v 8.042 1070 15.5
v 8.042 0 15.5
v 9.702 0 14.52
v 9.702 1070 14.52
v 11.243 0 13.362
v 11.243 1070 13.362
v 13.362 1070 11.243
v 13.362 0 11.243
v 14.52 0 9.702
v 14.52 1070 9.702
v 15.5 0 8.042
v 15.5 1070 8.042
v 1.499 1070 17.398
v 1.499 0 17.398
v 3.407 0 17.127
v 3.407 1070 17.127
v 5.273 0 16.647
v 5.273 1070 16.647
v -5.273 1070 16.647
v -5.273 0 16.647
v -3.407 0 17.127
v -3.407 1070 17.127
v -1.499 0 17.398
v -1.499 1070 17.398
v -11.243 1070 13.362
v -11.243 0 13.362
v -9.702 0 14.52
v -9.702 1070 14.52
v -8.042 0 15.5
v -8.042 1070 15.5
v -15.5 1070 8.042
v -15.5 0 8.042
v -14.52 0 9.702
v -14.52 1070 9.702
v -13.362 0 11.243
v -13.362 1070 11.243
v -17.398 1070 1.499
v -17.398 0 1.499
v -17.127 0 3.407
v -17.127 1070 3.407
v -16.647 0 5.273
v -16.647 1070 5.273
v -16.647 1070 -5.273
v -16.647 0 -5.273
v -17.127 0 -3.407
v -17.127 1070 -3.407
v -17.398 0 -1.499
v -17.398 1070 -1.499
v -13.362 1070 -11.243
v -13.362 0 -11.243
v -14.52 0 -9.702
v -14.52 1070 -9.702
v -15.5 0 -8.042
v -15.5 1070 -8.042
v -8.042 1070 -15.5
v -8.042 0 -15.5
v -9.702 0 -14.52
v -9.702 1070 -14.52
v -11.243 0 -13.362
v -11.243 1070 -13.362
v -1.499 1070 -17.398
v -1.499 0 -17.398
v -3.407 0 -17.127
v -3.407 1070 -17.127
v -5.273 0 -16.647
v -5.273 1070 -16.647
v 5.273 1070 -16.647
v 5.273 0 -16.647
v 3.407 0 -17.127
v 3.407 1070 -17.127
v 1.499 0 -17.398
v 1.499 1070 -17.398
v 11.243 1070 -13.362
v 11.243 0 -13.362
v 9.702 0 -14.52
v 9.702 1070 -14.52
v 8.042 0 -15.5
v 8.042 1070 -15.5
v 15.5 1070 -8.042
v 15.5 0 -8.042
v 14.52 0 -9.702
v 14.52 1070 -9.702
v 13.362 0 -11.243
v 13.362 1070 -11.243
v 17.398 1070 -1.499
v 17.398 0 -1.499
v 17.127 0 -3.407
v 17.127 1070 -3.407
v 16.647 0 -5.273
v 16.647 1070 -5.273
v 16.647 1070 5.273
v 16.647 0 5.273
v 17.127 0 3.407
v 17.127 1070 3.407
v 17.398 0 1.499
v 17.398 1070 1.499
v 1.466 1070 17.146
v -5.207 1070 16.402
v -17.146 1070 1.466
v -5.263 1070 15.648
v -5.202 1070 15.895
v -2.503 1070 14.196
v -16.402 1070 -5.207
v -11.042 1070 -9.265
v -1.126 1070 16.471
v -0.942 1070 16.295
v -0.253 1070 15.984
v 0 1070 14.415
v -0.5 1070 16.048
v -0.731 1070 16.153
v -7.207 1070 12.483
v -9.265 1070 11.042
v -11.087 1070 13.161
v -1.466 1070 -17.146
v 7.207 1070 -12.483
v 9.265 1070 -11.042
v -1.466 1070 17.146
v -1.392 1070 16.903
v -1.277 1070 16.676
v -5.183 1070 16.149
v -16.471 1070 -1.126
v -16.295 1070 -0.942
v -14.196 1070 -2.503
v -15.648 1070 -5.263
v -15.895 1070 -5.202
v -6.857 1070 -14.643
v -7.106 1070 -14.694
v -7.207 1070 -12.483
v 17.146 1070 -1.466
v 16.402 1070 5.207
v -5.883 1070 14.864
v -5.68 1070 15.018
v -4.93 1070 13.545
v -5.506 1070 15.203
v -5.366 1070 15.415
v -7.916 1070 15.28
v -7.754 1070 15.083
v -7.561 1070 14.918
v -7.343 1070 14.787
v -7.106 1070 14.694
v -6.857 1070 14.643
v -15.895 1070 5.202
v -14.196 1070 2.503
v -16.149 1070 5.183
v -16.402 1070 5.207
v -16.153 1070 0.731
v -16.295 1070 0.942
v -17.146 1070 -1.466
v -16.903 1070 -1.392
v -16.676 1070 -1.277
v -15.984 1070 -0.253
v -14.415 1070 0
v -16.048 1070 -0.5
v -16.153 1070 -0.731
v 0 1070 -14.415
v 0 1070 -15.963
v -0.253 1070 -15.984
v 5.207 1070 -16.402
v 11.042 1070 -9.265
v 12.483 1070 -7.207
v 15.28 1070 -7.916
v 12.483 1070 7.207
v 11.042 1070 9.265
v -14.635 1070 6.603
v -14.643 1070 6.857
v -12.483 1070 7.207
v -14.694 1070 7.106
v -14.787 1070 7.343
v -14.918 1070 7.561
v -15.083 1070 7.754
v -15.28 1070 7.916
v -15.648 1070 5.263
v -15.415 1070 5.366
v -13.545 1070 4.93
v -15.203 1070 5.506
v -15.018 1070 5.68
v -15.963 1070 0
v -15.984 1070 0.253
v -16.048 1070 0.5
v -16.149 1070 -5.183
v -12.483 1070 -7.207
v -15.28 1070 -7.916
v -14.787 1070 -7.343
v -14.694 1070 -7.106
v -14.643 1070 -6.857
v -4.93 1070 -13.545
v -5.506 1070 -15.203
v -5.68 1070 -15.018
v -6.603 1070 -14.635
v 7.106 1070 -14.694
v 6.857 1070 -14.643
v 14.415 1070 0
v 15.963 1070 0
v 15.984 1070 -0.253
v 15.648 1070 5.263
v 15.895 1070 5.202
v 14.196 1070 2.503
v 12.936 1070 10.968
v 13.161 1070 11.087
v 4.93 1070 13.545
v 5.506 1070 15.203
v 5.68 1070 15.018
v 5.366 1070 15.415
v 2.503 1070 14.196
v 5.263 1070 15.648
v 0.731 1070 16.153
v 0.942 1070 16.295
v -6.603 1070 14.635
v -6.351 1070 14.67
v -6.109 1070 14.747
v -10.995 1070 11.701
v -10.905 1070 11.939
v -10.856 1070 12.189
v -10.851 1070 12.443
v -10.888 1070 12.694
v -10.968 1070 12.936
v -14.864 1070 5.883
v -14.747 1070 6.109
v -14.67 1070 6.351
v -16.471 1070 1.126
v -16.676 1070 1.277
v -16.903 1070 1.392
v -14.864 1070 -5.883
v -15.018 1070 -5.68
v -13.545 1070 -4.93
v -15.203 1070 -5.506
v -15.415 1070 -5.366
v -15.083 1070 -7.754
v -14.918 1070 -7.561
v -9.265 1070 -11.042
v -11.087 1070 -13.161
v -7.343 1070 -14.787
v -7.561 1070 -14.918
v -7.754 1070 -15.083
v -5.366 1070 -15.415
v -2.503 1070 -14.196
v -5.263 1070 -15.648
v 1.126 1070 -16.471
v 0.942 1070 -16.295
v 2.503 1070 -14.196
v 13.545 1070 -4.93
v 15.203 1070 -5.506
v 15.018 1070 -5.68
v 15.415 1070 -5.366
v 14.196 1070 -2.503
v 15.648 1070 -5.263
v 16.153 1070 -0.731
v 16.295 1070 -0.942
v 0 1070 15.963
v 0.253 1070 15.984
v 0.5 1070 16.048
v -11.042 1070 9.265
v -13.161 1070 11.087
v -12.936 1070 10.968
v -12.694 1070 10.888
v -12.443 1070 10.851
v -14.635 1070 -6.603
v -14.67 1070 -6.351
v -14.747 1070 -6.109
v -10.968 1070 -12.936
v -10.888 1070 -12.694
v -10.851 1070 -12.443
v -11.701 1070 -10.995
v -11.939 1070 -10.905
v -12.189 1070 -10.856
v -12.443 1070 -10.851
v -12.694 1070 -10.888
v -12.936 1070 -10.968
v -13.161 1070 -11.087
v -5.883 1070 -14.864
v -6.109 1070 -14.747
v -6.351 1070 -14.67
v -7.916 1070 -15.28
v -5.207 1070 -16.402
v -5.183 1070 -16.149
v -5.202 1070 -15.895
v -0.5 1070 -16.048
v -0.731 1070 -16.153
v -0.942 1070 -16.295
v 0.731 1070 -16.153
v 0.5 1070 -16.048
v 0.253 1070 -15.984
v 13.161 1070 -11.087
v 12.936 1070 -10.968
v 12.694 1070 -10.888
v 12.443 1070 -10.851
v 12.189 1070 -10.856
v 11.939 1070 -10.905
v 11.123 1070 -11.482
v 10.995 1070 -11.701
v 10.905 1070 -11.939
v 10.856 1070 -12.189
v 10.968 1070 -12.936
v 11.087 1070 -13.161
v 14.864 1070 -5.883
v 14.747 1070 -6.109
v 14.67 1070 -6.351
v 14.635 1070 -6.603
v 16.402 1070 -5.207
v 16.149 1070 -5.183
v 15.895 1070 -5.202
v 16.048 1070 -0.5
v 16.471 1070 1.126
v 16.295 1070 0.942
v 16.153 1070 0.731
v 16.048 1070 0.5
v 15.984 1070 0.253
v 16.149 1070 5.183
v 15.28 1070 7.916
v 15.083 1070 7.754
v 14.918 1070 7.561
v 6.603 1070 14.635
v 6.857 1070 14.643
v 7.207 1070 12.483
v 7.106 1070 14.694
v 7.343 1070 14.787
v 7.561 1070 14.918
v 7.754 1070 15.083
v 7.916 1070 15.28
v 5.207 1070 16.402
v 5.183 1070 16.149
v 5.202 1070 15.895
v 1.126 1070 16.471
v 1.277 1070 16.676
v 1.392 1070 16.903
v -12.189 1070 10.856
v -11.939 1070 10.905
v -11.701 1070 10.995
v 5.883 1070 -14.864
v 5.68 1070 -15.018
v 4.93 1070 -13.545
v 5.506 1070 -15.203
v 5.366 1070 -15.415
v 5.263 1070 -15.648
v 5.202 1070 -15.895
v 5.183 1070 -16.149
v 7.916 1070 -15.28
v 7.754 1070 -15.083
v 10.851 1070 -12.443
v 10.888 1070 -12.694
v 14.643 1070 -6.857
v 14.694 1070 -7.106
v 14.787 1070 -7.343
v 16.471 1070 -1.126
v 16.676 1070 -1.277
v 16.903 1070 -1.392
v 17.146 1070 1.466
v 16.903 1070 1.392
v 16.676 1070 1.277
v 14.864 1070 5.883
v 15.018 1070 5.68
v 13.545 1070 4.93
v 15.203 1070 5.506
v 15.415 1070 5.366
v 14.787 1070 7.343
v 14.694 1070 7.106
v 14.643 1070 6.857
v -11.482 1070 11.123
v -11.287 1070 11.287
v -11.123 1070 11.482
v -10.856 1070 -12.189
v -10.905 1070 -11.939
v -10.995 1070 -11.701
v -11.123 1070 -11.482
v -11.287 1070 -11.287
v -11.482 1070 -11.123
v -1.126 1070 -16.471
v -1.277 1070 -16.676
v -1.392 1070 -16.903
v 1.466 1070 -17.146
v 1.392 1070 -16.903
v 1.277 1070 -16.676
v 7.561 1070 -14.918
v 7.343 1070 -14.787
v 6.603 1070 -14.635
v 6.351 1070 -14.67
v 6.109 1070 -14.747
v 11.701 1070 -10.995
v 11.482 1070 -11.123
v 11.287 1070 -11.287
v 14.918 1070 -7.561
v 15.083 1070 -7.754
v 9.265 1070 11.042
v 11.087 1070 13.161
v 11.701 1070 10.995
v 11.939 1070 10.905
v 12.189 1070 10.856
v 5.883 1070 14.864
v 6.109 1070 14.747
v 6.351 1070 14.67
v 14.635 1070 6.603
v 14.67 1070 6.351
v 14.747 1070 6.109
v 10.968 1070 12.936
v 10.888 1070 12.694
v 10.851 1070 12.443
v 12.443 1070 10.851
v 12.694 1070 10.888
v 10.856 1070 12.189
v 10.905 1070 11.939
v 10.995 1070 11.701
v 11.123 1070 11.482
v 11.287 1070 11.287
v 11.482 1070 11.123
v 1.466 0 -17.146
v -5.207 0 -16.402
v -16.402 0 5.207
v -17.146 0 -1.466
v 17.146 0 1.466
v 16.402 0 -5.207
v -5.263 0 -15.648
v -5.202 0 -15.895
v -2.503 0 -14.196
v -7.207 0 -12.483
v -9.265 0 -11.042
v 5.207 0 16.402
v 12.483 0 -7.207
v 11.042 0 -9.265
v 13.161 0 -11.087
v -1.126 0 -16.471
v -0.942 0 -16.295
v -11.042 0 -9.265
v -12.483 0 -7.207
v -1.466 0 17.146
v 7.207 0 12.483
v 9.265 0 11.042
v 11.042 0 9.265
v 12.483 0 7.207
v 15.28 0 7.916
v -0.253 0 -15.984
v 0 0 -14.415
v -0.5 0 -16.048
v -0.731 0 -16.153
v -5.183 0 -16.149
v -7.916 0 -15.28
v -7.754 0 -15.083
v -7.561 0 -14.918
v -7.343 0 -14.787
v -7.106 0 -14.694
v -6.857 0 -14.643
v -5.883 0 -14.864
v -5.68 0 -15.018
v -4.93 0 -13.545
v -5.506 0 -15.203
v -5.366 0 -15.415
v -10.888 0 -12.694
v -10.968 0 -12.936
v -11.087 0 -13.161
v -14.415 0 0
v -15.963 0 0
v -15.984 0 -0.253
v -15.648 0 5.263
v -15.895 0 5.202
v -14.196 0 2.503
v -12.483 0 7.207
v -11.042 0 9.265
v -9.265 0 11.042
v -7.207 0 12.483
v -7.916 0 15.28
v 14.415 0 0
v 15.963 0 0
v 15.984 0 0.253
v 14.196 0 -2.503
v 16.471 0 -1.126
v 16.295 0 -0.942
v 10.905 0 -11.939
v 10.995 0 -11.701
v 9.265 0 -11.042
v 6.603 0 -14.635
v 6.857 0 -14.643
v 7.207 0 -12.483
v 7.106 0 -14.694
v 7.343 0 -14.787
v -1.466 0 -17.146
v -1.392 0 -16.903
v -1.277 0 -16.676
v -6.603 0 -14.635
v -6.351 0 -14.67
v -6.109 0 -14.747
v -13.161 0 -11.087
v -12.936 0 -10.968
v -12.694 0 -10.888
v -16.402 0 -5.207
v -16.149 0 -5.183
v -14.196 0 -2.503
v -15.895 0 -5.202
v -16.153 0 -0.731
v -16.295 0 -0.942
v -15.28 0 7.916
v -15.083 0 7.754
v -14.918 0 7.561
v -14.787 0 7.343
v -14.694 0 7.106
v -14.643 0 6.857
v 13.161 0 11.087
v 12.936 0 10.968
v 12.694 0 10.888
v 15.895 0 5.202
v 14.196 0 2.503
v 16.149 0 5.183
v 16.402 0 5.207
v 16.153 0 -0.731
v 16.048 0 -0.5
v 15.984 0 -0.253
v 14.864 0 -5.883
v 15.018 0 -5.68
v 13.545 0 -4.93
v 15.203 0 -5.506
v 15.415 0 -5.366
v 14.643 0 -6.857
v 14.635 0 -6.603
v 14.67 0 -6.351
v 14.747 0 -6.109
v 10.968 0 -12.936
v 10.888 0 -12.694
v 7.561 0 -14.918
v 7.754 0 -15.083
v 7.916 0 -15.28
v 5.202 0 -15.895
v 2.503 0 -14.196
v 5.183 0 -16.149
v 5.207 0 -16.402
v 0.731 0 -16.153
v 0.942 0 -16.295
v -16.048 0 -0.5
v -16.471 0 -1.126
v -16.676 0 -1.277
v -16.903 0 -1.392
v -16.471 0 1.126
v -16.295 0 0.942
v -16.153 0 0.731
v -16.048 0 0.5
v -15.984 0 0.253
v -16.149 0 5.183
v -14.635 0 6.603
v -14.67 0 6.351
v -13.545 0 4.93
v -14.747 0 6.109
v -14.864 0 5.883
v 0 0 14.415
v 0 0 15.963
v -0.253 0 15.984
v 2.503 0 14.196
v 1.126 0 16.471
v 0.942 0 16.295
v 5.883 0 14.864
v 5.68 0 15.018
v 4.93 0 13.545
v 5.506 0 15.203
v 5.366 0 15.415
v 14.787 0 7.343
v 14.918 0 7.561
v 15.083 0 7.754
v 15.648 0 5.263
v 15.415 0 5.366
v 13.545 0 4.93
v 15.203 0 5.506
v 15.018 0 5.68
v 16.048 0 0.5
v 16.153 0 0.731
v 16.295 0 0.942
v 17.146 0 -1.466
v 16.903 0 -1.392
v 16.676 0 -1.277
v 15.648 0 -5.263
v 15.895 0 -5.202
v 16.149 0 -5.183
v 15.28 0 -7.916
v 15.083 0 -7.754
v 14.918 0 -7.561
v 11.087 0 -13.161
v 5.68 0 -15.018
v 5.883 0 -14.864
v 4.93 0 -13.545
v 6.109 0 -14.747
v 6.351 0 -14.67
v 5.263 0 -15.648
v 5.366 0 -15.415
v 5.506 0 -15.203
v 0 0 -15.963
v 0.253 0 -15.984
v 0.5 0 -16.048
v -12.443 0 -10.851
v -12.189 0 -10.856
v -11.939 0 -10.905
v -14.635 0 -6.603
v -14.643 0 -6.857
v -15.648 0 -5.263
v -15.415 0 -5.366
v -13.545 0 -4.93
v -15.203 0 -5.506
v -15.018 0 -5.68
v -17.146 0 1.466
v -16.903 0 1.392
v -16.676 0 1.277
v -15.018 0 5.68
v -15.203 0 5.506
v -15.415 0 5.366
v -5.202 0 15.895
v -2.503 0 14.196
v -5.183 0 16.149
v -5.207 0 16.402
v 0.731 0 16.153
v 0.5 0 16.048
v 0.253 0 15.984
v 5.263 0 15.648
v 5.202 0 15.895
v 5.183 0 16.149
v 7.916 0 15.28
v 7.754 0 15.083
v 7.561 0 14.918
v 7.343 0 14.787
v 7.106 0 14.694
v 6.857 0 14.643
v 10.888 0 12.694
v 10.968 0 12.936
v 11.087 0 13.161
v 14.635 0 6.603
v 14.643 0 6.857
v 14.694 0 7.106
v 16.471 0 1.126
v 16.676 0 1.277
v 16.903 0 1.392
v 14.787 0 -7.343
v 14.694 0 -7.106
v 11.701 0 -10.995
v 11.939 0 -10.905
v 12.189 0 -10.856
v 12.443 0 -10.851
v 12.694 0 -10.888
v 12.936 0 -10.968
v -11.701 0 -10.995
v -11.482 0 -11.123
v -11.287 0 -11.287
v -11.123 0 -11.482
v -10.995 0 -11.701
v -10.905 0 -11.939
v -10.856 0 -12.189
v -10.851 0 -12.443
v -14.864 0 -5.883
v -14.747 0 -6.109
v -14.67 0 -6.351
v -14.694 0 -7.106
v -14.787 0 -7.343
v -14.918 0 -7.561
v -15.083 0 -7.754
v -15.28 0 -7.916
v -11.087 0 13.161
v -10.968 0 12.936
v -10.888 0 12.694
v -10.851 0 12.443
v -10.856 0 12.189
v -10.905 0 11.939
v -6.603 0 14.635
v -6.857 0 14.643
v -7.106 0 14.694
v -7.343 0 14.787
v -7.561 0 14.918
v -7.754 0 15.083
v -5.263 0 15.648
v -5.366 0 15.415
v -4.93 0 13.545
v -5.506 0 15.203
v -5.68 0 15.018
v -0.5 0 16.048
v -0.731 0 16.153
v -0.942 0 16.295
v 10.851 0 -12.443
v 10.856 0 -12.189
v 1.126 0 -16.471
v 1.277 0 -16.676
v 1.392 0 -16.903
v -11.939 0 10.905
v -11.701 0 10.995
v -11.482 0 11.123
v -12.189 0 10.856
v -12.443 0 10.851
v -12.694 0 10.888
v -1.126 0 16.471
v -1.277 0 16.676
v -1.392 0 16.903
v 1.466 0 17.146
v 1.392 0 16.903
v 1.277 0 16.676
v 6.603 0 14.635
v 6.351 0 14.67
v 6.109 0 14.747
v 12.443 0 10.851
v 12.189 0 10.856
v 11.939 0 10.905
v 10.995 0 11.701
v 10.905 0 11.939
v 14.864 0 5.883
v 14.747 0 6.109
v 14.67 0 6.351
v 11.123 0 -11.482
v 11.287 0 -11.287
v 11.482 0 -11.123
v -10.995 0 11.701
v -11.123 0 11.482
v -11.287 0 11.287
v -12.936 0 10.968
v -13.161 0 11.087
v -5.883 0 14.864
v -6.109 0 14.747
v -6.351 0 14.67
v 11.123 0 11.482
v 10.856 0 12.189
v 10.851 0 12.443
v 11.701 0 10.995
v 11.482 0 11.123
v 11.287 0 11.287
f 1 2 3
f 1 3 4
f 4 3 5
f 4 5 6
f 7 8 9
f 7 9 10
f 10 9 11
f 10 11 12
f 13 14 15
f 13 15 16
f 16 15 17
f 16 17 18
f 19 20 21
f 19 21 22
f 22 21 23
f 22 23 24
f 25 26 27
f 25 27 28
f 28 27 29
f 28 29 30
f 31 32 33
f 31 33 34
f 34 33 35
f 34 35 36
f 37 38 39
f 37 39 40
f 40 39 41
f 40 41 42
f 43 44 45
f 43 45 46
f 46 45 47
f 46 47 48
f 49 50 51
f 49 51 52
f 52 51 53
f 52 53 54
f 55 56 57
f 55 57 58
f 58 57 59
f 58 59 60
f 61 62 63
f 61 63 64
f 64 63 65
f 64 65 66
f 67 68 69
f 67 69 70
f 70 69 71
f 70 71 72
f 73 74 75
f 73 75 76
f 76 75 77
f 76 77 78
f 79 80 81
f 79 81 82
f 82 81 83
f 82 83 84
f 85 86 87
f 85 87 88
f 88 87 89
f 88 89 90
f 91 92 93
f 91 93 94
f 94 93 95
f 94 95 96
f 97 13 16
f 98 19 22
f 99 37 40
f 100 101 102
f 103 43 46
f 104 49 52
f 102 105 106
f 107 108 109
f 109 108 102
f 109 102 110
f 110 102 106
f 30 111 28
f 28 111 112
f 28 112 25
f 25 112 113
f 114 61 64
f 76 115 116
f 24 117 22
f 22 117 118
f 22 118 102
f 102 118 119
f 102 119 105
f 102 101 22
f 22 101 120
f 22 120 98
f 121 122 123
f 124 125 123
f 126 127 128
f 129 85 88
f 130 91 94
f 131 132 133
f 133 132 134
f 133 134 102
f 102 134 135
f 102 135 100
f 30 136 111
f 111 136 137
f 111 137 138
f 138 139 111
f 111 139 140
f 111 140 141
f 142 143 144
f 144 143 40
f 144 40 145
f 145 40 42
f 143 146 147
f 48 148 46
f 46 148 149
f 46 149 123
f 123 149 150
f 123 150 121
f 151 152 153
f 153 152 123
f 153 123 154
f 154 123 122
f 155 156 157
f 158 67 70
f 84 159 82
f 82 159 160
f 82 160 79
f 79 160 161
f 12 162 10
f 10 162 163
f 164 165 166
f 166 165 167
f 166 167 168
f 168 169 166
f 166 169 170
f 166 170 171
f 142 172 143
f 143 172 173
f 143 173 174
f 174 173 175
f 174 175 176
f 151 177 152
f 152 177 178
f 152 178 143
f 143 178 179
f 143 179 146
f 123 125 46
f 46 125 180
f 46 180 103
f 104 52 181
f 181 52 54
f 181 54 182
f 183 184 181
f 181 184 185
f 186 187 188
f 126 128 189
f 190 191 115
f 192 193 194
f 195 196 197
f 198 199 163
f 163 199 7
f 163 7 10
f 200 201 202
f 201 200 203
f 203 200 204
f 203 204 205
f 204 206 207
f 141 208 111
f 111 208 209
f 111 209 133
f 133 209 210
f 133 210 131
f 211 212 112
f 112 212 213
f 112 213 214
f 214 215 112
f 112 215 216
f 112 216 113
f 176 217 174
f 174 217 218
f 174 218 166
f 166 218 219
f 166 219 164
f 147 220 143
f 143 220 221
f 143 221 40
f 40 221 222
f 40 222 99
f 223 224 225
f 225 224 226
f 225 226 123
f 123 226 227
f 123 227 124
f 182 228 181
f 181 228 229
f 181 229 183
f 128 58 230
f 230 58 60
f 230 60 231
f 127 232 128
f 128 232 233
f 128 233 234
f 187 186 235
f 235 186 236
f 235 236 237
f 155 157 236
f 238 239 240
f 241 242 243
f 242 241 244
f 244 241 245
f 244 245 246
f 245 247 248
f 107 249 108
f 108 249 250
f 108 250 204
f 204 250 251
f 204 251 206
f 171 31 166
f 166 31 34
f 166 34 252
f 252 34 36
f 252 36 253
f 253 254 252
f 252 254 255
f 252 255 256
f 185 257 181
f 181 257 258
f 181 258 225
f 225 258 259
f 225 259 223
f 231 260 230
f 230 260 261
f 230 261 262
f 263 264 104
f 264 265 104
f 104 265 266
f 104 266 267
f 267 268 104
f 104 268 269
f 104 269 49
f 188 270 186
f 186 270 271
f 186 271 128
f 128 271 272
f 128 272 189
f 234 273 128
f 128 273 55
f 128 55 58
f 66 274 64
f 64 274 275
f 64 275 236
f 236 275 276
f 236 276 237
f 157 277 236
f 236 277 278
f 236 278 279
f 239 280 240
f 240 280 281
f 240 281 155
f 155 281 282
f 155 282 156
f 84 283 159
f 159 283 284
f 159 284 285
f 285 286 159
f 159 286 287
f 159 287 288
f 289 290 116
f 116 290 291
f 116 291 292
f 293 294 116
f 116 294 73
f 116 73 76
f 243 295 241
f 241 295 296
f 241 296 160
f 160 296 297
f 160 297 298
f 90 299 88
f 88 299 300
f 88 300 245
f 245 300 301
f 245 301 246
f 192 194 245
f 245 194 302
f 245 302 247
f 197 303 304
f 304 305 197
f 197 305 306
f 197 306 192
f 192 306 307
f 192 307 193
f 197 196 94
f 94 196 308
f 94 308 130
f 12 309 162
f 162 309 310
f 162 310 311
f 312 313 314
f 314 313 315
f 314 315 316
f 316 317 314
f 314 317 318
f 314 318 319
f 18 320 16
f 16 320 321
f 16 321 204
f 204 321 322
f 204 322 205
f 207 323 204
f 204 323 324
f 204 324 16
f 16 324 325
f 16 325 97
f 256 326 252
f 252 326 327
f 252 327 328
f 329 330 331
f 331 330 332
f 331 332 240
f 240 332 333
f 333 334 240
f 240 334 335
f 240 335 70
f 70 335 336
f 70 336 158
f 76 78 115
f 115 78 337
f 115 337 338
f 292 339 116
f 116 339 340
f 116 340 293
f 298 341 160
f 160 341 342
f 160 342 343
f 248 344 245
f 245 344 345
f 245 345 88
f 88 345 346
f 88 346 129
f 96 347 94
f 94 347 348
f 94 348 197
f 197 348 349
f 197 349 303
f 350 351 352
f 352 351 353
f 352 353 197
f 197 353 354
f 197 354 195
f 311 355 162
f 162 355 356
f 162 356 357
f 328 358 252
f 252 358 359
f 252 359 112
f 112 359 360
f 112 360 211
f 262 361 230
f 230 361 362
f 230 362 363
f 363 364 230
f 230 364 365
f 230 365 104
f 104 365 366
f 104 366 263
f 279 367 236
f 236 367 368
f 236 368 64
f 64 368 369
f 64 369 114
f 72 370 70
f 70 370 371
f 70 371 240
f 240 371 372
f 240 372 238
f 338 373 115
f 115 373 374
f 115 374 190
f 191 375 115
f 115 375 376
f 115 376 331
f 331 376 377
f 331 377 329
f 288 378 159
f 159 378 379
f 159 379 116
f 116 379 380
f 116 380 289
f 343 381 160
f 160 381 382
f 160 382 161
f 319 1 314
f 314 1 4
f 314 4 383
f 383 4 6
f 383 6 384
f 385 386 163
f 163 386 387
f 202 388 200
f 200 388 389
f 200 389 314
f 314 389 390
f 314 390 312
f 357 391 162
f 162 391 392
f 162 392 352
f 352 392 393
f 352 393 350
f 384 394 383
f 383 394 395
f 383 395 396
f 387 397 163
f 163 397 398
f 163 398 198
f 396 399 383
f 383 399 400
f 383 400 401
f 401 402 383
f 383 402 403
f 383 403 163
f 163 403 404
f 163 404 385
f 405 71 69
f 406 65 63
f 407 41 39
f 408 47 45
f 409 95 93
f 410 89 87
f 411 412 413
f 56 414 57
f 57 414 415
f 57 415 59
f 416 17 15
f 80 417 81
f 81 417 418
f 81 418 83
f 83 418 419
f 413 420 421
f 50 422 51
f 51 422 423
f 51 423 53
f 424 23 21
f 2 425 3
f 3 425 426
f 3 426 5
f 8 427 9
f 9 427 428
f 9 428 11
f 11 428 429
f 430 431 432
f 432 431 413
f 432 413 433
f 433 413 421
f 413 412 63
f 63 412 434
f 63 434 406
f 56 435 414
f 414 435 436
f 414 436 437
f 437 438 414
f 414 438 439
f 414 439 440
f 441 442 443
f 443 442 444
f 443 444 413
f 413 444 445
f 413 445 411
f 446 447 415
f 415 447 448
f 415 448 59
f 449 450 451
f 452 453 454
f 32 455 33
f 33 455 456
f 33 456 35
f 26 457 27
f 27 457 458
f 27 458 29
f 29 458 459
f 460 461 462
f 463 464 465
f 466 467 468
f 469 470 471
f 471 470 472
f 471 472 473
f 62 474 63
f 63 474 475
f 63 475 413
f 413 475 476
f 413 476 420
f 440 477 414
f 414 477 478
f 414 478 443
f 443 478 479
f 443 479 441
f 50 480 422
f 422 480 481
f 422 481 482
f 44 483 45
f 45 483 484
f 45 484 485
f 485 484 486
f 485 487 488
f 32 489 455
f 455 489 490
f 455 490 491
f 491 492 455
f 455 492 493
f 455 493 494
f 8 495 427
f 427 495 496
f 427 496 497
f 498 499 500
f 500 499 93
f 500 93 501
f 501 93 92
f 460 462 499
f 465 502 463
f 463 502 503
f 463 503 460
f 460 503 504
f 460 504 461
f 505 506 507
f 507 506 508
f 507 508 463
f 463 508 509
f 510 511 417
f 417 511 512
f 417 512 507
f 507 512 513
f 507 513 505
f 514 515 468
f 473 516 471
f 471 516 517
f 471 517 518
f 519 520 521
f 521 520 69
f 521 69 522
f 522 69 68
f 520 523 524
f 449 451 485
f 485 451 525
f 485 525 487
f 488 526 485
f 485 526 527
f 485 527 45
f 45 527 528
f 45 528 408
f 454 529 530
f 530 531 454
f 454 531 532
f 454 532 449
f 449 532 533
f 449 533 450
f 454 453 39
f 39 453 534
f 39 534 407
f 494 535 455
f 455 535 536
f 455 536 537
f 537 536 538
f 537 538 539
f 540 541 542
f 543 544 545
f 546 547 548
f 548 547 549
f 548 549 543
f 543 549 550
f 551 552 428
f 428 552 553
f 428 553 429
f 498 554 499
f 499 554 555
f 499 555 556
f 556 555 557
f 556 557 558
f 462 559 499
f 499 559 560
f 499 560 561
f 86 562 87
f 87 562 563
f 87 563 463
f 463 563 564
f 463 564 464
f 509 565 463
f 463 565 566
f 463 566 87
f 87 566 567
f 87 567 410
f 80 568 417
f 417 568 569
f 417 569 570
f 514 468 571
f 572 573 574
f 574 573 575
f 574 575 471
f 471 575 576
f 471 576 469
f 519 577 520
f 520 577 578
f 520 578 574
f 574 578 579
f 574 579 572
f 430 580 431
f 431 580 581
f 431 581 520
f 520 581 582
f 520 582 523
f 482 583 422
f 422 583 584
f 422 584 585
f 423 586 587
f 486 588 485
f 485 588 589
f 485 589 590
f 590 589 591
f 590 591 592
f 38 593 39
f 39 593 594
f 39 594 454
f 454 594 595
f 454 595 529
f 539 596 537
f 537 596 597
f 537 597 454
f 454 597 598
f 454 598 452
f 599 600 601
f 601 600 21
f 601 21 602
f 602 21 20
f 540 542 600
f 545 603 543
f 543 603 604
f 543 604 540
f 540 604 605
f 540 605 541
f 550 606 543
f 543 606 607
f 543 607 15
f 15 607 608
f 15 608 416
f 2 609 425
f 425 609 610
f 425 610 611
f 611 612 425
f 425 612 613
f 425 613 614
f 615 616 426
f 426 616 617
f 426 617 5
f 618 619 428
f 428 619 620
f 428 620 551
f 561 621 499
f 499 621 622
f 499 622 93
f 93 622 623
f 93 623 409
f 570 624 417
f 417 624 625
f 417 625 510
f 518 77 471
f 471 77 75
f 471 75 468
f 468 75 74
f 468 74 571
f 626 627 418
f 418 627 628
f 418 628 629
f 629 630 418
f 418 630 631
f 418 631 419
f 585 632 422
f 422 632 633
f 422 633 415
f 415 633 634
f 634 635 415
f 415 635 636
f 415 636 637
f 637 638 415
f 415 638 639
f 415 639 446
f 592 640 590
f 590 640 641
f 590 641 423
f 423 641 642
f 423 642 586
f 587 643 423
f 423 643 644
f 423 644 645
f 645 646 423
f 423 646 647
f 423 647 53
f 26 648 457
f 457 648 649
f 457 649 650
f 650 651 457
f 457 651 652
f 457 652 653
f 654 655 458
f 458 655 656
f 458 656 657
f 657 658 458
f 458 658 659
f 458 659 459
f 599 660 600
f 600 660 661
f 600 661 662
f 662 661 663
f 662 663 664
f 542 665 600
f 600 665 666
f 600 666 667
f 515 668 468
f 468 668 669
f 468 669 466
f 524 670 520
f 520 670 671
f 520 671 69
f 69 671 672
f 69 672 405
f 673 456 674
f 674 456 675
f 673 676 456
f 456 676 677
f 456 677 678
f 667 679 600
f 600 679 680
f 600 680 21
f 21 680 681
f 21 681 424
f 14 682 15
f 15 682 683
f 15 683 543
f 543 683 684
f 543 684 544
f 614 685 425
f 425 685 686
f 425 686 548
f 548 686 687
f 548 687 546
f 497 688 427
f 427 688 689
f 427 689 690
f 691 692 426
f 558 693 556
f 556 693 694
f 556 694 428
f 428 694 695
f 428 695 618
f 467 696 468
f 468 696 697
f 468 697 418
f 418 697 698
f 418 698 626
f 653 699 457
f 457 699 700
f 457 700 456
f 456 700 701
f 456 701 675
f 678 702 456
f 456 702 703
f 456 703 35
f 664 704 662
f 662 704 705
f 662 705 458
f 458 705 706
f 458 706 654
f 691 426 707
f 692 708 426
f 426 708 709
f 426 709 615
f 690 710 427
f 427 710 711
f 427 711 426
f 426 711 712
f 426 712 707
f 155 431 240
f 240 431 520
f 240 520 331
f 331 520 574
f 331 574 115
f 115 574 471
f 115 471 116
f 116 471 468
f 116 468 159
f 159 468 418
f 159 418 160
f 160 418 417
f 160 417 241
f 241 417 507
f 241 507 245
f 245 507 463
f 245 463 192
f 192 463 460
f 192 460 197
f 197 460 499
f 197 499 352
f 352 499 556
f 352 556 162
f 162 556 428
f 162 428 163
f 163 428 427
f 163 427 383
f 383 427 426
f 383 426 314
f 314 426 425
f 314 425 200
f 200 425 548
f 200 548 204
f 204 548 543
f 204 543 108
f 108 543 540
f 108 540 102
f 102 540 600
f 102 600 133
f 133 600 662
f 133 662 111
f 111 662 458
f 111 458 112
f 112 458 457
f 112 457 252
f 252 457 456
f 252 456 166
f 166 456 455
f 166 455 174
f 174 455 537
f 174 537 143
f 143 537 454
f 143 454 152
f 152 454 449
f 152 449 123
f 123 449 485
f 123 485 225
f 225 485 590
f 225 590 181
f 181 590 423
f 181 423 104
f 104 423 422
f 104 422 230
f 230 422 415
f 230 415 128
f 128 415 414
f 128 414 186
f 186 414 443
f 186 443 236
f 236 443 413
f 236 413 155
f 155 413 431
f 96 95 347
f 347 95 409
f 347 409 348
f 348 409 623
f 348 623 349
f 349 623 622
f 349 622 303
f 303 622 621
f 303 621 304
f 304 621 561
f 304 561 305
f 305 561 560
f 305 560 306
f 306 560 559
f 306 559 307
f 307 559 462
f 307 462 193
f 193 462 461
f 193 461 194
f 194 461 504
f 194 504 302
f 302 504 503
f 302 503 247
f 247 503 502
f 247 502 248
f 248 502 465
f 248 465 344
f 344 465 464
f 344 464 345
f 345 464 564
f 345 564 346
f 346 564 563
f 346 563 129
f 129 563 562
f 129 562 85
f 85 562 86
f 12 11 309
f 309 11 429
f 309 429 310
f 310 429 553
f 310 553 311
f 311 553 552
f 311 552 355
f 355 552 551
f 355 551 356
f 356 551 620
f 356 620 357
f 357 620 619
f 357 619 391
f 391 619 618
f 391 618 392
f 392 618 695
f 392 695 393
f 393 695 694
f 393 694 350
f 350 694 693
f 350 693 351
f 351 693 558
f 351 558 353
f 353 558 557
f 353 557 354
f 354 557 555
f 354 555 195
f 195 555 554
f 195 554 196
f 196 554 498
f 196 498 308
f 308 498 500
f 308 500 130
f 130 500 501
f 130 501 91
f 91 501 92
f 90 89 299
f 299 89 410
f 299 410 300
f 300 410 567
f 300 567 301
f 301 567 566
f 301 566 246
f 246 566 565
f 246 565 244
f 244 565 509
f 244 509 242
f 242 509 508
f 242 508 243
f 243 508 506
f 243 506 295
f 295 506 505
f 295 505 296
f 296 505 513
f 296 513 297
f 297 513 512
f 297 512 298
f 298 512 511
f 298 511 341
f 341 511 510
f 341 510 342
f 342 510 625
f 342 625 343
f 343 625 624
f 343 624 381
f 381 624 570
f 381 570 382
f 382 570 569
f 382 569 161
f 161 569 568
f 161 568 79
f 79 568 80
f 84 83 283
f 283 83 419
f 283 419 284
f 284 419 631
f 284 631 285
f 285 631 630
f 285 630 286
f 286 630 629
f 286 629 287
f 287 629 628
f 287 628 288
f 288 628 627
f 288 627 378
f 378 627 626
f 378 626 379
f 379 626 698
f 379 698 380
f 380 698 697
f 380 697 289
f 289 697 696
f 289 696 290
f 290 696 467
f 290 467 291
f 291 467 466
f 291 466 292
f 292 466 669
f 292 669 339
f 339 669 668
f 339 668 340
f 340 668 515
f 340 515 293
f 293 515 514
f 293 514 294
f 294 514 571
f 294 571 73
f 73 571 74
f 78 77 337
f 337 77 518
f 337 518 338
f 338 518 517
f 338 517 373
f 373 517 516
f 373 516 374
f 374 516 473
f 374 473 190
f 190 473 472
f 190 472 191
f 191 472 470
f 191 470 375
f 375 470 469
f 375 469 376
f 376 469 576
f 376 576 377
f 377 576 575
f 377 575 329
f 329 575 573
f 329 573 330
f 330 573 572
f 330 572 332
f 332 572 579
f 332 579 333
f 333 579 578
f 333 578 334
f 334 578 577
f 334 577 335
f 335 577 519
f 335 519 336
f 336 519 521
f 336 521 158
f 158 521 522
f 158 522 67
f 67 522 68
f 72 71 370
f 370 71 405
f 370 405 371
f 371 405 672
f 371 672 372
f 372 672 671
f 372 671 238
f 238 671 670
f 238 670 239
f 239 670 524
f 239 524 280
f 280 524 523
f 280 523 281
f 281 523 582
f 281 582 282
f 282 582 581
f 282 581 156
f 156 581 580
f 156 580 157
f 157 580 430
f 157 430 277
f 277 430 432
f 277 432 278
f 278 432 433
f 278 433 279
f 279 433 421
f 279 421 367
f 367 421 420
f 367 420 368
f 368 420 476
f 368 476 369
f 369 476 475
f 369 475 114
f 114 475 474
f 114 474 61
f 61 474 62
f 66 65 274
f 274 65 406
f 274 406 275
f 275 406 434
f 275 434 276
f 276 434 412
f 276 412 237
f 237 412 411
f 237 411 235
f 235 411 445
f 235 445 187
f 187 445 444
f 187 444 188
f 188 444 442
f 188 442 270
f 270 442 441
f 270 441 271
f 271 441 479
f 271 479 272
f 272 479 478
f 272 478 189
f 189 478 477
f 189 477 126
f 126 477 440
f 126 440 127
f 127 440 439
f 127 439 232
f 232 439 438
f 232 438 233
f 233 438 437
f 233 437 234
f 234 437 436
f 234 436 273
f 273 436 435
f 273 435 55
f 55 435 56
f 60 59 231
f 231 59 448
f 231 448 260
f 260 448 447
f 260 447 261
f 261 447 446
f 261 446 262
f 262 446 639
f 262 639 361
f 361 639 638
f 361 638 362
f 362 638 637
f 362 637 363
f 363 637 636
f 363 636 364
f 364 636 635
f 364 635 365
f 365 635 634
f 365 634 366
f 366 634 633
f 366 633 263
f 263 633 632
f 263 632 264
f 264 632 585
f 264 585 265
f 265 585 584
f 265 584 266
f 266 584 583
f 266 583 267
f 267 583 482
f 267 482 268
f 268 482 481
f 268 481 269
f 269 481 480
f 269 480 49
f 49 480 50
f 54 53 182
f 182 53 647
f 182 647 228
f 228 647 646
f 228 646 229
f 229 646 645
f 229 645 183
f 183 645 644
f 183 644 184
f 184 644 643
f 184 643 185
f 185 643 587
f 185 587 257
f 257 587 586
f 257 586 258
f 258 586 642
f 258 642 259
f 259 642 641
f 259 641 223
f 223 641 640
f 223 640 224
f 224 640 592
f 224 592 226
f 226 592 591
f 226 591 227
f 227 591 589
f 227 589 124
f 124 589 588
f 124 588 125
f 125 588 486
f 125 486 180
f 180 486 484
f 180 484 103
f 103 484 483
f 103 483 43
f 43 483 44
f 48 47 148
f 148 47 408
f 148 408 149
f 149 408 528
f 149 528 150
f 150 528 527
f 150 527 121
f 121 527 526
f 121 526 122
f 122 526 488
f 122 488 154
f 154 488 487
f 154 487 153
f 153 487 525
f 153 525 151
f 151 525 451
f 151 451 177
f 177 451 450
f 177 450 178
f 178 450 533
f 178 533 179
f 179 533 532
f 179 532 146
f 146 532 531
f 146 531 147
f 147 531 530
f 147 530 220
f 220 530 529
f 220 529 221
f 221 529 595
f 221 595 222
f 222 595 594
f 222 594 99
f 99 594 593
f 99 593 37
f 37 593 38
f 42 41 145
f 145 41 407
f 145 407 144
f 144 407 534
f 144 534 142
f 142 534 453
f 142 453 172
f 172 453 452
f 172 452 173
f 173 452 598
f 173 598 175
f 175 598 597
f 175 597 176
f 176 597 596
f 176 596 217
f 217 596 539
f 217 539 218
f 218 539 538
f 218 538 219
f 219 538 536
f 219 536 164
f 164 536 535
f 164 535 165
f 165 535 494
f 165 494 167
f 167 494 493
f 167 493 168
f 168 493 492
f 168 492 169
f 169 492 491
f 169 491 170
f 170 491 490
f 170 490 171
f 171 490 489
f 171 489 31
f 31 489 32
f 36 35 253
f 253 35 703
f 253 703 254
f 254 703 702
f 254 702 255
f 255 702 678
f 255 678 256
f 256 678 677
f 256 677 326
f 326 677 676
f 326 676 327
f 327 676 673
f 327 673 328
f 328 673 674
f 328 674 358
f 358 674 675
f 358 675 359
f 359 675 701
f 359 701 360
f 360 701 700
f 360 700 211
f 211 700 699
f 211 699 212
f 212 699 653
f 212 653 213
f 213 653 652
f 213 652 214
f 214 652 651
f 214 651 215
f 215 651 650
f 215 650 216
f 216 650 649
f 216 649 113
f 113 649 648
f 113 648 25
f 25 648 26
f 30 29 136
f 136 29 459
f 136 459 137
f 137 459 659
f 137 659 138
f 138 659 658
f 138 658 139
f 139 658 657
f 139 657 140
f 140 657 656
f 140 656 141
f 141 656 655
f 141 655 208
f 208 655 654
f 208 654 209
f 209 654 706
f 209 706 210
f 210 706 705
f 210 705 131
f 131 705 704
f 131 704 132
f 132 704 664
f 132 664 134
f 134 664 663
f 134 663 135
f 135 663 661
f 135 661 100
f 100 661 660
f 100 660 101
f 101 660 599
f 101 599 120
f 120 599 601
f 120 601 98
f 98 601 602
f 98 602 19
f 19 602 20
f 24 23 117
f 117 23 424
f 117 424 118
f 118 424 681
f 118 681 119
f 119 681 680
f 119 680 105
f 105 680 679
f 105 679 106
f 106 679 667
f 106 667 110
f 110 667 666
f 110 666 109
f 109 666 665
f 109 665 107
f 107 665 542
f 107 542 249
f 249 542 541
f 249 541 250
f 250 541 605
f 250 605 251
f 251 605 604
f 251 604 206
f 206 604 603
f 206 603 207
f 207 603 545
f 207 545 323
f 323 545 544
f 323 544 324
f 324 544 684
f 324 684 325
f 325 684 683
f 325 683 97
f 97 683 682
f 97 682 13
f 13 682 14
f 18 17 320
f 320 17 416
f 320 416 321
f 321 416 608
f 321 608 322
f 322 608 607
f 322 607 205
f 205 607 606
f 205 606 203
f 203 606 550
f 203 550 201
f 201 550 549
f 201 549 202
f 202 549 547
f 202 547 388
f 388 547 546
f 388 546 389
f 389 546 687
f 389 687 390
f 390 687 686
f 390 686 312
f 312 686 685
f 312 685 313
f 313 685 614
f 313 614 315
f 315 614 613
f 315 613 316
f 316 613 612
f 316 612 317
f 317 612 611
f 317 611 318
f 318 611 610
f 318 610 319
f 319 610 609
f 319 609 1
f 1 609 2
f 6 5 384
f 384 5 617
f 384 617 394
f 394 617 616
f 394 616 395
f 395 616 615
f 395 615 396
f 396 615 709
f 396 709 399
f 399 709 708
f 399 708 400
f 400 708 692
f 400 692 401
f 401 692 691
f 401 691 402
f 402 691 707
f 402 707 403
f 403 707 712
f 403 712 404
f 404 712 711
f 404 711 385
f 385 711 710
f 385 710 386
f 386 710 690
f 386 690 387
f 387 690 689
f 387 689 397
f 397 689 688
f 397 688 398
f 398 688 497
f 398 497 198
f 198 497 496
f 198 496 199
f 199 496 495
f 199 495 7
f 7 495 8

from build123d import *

# Parameters (mm, degrees)
SKETCH1_R           = 17.4625
SKETCH1_R_2         = 14.4145
BOSS_EXTRUDE1_DEPTH = 1070
SKETCH2_R           = 1.5
CUT_EXTRUDE2_DEPTH  = 1070
CIRPATTERN1_COUNT   = 16


with BuildPart() as part:
    # Sketch1 → Boss-Extrude1 (new body)
    with BuildSketch(Plane(origin=(0, 0, 0), x_dir=(1, 0, 0), z_dir=(0, 1, 0))):
        Circle(SKETCH1_R)
        Circle(SKETCH1_R_2, mode=Mode.SUBTRACT)
    extrude(amount=BOSS_EXTRUDE1_DEPTH)

    # Sketch2 → Cut-Extrude2 (cut, symmetric)
    with BuildSketch(Plane(origin=(0, 0, 0), x_dir=(1, 0, 0), z_dir=(0, 1, 0))):
        with Locations((17.4625, 0)):
            Circle(SKETCH2_R)
    cut_extrude2 = extrude(amount=CUT_EXTRUDE2_DEPTH, both=True, mode=Mode.SUBTRACT)

    # CirPattern1: Cut-Extrude2 ×16 about axis
    cirpattern1_axis = Axis((0, 1123.5, 0), (0, -1, 0))
    for i in range(1, CIRPATTERN1_COUNT):
        add(cut_extrude2.rotate(cirpattern1_axis, i * 360 / CIRPATTERN1_COUNT), mode=Mode.SUBTRACT)


solid = part.part
